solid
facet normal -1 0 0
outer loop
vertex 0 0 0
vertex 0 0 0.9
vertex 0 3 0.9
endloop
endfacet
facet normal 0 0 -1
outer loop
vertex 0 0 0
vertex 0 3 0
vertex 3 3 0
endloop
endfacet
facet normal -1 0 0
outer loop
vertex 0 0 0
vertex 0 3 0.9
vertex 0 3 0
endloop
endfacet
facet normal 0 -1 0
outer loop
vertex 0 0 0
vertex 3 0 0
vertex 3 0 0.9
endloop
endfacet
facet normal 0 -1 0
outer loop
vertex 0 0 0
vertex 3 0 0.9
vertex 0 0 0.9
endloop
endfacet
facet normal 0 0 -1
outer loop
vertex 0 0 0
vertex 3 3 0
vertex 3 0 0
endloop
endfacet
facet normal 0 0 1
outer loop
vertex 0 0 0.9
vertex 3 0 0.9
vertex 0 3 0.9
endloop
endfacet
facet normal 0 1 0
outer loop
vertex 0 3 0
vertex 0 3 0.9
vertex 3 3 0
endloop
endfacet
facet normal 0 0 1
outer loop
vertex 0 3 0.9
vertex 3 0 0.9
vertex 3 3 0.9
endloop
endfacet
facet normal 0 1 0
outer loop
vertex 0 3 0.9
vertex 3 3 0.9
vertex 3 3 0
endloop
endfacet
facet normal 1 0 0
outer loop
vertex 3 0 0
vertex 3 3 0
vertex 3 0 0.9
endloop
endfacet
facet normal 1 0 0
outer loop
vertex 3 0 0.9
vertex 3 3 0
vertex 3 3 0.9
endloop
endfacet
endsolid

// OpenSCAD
/* Warning, this is a very basic generator with a lot of approximation 
input data : [VDFN, QSX, 3x3x0.9mm, 10, , D, C04-00206D]
generated by com.zoubworld.electronics.cad.model3d.Basic
Date : Sun Feb 15 10:50:48 CET 2026
*/

//body
color("black")
translate([0,0,0])
cube([3.0,3.0,0.9], center=false);
